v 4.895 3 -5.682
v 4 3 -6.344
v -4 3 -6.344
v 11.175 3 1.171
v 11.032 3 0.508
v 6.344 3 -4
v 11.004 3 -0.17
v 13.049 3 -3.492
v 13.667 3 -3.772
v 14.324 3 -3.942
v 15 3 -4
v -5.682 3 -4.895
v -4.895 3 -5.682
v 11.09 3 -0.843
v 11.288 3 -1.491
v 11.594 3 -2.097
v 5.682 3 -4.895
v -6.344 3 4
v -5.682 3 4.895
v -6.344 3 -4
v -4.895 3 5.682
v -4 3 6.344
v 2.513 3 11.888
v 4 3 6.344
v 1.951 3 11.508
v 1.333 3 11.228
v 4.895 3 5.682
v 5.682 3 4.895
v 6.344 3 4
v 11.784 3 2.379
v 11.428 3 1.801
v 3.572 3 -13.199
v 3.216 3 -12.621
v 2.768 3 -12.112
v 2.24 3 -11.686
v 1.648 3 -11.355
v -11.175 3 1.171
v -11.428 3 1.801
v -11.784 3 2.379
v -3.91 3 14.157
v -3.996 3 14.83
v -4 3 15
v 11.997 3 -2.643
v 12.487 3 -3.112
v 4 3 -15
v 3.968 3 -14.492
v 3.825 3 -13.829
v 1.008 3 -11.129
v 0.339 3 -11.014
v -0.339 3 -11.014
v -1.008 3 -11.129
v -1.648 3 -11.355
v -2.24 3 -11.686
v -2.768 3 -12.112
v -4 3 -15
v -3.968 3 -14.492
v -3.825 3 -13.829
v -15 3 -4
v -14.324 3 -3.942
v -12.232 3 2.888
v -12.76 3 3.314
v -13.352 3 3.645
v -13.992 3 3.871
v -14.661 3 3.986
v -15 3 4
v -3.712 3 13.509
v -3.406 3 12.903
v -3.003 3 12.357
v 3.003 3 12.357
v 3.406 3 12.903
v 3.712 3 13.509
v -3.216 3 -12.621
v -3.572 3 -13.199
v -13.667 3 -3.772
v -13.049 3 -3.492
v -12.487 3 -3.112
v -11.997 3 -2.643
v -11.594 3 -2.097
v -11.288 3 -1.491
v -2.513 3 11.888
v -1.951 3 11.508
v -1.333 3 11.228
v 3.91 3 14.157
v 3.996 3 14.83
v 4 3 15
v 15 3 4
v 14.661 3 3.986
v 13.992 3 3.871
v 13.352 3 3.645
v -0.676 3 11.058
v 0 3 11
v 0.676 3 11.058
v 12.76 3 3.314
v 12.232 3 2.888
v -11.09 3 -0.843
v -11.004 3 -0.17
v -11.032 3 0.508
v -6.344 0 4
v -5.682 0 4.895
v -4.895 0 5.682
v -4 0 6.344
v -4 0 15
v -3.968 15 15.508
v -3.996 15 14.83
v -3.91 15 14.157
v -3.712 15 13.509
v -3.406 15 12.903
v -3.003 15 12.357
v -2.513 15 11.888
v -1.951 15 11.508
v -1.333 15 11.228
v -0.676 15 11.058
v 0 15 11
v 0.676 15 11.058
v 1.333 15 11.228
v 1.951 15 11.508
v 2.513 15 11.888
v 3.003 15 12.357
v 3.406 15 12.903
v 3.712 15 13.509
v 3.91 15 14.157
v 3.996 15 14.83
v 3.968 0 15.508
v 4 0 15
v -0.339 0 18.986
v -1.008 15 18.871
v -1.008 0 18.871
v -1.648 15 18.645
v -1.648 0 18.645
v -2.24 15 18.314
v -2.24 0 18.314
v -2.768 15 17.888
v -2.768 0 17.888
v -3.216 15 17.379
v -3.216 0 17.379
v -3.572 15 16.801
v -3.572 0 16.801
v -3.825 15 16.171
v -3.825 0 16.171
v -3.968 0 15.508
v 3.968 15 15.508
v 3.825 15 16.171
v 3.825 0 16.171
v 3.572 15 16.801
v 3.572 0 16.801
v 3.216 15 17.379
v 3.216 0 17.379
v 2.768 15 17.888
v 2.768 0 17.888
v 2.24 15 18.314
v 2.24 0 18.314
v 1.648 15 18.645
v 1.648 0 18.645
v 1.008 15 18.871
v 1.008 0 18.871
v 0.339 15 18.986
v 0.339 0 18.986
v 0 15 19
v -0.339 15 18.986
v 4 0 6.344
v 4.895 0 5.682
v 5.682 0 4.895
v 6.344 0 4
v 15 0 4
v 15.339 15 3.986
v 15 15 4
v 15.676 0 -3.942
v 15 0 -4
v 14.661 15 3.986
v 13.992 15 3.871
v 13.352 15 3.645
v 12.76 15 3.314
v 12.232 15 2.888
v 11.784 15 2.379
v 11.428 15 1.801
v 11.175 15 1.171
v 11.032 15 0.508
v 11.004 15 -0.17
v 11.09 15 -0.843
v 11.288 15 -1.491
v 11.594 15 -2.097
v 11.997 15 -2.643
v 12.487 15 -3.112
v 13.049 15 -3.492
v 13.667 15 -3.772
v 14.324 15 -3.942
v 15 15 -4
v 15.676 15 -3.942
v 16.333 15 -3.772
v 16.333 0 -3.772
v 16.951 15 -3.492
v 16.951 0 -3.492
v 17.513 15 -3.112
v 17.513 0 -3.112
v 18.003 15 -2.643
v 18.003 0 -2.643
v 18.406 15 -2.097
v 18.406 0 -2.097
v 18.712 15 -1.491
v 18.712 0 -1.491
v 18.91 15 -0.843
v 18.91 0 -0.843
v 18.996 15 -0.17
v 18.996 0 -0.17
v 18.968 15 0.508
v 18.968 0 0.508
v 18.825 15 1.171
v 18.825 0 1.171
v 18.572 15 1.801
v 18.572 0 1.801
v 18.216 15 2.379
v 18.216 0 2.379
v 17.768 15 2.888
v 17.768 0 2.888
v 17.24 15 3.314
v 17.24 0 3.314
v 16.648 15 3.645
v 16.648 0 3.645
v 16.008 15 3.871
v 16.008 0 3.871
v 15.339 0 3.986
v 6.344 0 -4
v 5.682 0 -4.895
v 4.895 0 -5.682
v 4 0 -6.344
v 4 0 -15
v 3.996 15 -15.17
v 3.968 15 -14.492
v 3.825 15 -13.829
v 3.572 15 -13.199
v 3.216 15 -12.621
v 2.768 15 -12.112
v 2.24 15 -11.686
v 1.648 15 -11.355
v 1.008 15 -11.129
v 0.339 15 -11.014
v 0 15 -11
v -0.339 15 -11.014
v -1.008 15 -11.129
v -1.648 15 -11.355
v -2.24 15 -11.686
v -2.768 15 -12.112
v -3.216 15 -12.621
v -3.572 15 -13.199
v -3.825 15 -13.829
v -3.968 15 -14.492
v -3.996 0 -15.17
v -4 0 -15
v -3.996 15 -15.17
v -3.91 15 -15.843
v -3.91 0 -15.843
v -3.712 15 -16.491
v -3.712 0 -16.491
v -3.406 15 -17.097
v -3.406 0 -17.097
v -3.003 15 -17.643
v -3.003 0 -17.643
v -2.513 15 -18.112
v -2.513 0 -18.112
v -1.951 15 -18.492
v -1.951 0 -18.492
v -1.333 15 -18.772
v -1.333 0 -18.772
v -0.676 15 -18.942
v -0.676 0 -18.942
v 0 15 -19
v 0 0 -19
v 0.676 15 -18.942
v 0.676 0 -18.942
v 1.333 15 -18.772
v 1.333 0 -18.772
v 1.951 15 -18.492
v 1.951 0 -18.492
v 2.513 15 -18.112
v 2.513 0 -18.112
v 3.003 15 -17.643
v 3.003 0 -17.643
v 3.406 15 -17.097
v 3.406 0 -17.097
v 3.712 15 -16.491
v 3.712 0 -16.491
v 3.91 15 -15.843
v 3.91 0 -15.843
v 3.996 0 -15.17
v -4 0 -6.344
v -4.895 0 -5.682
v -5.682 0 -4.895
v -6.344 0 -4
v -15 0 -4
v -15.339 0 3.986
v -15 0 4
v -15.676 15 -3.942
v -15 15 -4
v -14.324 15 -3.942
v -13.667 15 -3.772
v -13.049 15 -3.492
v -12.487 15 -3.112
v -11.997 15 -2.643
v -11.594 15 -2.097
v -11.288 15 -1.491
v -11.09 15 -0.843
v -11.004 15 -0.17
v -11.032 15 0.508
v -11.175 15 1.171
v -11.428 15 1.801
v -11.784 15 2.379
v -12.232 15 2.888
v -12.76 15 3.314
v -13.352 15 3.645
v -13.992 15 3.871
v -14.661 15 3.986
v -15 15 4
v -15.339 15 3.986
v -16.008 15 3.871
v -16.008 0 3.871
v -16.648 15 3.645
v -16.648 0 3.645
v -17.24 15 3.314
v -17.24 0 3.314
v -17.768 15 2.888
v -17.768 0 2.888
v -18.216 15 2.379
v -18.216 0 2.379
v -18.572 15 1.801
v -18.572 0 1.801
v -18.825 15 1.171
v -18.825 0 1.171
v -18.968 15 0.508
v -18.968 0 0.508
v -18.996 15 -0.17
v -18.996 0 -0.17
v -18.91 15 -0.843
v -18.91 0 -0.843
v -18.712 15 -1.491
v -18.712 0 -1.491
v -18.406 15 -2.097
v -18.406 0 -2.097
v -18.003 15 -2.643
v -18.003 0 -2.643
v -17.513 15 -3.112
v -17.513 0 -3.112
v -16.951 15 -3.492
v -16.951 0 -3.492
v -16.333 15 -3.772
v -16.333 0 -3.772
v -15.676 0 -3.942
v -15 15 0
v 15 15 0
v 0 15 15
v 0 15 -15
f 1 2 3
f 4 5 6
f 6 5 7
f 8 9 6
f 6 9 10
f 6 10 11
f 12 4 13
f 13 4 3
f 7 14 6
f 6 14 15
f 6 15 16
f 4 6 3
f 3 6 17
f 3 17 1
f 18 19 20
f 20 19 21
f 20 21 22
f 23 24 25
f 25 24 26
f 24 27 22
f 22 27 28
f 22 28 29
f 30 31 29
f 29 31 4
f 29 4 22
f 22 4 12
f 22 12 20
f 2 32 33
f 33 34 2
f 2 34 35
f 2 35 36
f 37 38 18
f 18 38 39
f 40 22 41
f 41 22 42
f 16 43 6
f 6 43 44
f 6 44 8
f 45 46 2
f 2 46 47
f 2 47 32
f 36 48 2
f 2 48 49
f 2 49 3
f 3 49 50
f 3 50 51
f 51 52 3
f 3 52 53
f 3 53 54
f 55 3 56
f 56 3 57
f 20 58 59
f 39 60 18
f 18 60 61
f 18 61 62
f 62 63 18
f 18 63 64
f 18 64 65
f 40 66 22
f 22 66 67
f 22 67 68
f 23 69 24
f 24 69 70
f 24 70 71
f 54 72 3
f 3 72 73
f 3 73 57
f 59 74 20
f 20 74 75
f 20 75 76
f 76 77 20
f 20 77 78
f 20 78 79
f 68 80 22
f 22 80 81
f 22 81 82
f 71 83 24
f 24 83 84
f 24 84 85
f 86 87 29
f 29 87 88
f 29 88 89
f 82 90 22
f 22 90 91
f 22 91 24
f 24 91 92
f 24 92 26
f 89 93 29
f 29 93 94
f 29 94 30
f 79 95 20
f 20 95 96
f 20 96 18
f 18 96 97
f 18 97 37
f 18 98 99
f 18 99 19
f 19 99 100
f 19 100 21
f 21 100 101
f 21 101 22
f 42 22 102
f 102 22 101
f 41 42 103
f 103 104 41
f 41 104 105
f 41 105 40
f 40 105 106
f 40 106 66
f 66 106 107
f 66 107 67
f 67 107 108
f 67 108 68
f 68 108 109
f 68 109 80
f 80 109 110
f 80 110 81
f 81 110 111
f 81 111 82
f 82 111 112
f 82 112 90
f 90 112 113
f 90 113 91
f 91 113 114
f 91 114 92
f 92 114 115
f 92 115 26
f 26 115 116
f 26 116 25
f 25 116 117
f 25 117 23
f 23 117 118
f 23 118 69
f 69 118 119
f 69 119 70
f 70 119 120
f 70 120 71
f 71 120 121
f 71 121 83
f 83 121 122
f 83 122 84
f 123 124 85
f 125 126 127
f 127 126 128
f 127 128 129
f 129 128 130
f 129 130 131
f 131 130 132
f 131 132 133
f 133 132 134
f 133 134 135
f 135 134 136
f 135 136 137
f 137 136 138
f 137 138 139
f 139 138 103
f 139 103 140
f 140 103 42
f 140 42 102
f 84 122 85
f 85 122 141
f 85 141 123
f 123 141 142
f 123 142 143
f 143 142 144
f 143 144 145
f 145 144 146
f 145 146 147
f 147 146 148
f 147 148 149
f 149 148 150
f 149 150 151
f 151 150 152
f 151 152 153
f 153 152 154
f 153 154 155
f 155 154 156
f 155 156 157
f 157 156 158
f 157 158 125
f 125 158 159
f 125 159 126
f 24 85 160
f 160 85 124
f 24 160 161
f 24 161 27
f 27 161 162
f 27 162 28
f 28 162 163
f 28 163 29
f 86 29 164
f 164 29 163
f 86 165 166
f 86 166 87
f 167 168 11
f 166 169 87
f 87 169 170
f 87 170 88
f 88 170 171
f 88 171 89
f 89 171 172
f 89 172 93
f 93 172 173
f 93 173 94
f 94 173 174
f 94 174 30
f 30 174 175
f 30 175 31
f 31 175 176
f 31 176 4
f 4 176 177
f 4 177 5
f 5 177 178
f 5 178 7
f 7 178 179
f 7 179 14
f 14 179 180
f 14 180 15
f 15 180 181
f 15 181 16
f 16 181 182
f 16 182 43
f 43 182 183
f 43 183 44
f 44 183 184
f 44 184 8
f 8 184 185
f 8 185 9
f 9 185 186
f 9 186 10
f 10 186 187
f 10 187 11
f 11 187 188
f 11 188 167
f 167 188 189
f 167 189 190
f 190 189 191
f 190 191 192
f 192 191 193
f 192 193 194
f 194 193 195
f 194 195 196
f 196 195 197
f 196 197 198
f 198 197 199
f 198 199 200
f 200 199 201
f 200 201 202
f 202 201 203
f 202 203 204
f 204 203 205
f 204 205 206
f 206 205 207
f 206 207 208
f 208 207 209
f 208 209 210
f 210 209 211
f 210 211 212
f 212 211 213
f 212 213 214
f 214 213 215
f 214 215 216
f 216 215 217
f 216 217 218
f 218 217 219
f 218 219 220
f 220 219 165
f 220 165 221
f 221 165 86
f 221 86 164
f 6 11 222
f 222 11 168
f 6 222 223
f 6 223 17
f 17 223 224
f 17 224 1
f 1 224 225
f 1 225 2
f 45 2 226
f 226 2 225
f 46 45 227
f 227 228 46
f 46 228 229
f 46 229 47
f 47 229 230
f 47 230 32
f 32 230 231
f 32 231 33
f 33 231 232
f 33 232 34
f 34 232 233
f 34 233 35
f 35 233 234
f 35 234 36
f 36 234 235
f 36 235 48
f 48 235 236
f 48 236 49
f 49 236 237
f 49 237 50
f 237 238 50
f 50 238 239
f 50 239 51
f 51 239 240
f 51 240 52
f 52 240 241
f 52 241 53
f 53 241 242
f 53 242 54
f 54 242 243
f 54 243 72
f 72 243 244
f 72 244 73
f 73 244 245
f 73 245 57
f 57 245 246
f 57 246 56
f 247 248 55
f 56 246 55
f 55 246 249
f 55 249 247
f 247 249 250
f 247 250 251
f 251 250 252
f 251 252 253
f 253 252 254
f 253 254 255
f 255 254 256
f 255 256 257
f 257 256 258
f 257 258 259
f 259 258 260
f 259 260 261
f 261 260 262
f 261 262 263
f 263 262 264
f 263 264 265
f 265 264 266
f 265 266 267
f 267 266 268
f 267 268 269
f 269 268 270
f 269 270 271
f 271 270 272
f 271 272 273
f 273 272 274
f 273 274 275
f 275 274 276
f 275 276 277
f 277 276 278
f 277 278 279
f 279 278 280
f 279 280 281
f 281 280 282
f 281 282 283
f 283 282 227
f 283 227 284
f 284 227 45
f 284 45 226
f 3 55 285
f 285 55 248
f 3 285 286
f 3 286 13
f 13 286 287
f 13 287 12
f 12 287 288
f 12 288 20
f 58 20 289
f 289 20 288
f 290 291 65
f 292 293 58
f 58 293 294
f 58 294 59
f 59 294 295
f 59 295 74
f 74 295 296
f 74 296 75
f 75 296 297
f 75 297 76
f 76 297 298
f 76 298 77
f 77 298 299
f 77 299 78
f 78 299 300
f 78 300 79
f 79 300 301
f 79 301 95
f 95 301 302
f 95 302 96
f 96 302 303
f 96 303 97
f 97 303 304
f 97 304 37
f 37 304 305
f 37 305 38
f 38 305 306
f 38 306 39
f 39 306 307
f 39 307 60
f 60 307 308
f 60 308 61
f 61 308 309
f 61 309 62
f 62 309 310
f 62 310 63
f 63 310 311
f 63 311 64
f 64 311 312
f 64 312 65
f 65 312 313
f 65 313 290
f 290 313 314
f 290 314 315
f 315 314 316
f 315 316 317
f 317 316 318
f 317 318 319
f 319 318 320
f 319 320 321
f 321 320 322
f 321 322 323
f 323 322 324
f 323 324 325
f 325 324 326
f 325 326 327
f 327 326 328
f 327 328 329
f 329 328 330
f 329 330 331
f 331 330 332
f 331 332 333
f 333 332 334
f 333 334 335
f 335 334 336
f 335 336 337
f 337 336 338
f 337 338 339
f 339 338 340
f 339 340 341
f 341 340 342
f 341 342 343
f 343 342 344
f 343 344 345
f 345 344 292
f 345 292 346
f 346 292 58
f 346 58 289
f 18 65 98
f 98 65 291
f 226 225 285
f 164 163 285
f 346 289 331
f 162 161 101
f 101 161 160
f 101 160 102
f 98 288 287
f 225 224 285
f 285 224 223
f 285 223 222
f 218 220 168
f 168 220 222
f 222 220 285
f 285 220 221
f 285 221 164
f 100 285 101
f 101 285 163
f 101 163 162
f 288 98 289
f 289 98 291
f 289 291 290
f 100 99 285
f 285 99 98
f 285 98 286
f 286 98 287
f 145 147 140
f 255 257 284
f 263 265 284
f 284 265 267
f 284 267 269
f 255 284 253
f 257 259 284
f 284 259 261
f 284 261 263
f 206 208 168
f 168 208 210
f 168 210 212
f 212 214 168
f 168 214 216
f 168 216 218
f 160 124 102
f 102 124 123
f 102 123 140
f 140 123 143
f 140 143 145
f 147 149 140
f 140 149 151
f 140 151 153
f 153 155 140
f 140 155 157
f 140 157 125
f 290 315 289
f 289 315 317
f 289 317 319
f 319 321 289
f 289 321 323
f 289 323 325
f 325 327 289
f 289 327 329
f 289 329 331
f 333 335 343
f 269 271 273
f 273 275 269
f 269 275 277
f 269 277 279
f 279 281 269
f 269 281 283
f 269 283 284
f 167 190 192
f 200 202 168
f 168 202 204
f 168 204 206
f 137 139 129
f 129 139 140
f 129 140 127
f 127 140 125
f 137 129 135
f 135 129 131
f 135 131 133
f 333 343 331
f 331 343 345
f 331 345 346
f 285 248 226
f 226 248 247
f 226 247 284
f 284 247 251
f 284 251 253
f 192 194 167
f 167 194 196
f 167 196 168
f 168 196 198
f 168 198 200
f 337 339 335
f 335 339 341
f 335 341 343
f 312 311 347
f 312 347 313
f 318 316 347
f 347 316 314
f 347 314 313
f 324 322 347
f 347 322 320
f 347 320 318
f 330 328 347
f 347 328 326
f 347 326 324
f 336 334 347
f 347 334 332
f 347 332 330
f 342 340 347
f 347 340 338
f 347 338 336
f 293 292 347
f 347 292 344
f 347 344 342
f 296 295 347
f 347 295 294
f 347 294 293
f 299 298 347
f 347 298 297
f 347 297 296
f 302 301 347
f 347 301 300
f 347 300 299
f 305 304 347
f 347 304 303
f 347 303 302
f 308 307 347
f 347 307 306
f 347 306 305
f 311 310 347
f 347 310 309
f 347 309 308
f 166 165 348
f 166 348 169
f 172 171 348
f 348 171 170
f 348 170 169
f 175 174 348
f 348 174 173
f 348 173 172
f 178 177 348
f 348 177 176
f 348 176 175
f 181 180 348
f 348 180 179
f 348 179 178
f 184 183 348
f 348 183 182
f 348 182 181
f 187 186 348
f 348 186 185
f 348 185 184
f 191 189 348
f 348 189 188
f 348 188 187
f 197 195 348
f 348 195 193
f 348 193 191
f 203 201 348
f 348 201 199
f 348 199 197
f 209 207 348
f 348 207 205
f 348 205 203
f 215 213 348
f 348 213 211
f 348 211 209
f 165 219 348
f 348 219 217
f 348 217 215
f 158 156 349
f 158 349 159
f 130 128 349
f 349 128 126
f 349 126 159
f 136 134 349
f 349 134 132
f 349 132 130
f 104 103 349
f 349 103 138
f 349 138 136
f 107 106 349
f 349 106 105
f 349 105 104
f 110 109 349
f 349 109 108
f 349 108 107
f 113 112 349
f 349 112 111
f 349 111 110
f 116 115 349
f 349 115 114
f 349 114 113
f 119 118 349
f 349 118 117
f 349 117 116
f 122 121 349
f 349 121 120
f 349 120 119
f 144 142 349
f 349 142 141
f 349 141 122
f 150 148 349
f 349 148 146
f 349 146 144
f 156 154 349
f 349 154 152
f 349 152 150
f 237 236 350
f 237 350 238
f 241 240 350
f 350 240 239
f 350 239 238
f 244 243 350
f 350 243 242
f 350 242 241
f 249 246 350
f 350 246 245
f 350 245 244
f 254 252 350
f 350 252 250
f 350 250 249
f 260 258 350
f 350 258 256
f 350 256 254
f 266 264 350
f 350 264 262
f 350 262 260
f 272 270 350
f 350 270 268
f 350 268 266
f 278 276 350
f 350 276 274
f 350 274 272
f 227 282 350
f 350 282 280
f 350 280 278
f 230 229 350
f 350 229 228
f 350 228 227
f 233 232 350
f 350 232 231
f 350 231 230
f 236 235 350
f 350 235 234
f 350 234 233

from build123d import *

# Parameters (mm, degrees)
BOSS_EXTRUDE1_DEPTH = 3
SKETCH2_R           = 4
BOSS_EXTRUDE2_DEPTH = 12


with BuildPart() as part:
    # Sketch1 → Boss-Extrude1 (new body)
    with BuildSketch(Plane(origin=(0, 0, 0), x_dir=(1, 0, 0), z_dir=(0, 1, 0))):
        with BuildLine():
            Line((-15, 4), (-6.34428877, 4))
            ThreePointArc((-6.34428877, 4), (-5.303300859, 5.303300859), (-4, 6.34428877))
            Line((-4, 6.34428877), (-4, 15))
            ThreePointArc((-4, 15), (0, 19), (4, 15))
            Line((4, 15), (4, 6.34428877))
            ThreePointArc((4, 6.34428877), (5.303300859, 5.303300859), (6.34428877, 4))
            Line((6.34428877, 4), (15, 4))
            ThreePointArc((15, 4), (19, 0), (15, -4))
            Line((15, -4), (6.34428877, -4))
            ThreePointArc((6.34428877, -4), (5.303300859, -5.303300859), (4, -6.34428877))
            Line((4, -6.34428877), (4, -15))
            ThreePointArc((4, -15), (0, -19), (-4, -15))
            Line((-4, -15), (-4, -6.34428877))
            ThreePointArc((-4, -6.34428877), (-5.303300859, -5.303300859), (-6.34428877, -4))
            Line((-6.34428877, -4), (-15, -4))
            ThreePointArc((-15, -4), (-19, 0), (-15, 4))
        make_face()
    extrude(amount=BOSS_EXTRUDE1_DEPTH)

    # Sketch2 → Boss-Extrude2 (add)
    with BuildSketch(Plane(origin=(0, 3, 0), x_dir=(1, 0, 0), z_dir=(0, 1, 0))):
        with Locations((-15, 0)):
            Circle(SKETCH2_R)
        with Locations((15, 0)):
            Circle(SKETCH2_R)
        with Locations((0, -15)):
            Circle(SKETCH2_R)
        with Locations((0, 15)):
            Circle(SKETCH2_R)
    extrude(amount=BOSS_EXTRUDE2_DEPTH)


solid = part.part
